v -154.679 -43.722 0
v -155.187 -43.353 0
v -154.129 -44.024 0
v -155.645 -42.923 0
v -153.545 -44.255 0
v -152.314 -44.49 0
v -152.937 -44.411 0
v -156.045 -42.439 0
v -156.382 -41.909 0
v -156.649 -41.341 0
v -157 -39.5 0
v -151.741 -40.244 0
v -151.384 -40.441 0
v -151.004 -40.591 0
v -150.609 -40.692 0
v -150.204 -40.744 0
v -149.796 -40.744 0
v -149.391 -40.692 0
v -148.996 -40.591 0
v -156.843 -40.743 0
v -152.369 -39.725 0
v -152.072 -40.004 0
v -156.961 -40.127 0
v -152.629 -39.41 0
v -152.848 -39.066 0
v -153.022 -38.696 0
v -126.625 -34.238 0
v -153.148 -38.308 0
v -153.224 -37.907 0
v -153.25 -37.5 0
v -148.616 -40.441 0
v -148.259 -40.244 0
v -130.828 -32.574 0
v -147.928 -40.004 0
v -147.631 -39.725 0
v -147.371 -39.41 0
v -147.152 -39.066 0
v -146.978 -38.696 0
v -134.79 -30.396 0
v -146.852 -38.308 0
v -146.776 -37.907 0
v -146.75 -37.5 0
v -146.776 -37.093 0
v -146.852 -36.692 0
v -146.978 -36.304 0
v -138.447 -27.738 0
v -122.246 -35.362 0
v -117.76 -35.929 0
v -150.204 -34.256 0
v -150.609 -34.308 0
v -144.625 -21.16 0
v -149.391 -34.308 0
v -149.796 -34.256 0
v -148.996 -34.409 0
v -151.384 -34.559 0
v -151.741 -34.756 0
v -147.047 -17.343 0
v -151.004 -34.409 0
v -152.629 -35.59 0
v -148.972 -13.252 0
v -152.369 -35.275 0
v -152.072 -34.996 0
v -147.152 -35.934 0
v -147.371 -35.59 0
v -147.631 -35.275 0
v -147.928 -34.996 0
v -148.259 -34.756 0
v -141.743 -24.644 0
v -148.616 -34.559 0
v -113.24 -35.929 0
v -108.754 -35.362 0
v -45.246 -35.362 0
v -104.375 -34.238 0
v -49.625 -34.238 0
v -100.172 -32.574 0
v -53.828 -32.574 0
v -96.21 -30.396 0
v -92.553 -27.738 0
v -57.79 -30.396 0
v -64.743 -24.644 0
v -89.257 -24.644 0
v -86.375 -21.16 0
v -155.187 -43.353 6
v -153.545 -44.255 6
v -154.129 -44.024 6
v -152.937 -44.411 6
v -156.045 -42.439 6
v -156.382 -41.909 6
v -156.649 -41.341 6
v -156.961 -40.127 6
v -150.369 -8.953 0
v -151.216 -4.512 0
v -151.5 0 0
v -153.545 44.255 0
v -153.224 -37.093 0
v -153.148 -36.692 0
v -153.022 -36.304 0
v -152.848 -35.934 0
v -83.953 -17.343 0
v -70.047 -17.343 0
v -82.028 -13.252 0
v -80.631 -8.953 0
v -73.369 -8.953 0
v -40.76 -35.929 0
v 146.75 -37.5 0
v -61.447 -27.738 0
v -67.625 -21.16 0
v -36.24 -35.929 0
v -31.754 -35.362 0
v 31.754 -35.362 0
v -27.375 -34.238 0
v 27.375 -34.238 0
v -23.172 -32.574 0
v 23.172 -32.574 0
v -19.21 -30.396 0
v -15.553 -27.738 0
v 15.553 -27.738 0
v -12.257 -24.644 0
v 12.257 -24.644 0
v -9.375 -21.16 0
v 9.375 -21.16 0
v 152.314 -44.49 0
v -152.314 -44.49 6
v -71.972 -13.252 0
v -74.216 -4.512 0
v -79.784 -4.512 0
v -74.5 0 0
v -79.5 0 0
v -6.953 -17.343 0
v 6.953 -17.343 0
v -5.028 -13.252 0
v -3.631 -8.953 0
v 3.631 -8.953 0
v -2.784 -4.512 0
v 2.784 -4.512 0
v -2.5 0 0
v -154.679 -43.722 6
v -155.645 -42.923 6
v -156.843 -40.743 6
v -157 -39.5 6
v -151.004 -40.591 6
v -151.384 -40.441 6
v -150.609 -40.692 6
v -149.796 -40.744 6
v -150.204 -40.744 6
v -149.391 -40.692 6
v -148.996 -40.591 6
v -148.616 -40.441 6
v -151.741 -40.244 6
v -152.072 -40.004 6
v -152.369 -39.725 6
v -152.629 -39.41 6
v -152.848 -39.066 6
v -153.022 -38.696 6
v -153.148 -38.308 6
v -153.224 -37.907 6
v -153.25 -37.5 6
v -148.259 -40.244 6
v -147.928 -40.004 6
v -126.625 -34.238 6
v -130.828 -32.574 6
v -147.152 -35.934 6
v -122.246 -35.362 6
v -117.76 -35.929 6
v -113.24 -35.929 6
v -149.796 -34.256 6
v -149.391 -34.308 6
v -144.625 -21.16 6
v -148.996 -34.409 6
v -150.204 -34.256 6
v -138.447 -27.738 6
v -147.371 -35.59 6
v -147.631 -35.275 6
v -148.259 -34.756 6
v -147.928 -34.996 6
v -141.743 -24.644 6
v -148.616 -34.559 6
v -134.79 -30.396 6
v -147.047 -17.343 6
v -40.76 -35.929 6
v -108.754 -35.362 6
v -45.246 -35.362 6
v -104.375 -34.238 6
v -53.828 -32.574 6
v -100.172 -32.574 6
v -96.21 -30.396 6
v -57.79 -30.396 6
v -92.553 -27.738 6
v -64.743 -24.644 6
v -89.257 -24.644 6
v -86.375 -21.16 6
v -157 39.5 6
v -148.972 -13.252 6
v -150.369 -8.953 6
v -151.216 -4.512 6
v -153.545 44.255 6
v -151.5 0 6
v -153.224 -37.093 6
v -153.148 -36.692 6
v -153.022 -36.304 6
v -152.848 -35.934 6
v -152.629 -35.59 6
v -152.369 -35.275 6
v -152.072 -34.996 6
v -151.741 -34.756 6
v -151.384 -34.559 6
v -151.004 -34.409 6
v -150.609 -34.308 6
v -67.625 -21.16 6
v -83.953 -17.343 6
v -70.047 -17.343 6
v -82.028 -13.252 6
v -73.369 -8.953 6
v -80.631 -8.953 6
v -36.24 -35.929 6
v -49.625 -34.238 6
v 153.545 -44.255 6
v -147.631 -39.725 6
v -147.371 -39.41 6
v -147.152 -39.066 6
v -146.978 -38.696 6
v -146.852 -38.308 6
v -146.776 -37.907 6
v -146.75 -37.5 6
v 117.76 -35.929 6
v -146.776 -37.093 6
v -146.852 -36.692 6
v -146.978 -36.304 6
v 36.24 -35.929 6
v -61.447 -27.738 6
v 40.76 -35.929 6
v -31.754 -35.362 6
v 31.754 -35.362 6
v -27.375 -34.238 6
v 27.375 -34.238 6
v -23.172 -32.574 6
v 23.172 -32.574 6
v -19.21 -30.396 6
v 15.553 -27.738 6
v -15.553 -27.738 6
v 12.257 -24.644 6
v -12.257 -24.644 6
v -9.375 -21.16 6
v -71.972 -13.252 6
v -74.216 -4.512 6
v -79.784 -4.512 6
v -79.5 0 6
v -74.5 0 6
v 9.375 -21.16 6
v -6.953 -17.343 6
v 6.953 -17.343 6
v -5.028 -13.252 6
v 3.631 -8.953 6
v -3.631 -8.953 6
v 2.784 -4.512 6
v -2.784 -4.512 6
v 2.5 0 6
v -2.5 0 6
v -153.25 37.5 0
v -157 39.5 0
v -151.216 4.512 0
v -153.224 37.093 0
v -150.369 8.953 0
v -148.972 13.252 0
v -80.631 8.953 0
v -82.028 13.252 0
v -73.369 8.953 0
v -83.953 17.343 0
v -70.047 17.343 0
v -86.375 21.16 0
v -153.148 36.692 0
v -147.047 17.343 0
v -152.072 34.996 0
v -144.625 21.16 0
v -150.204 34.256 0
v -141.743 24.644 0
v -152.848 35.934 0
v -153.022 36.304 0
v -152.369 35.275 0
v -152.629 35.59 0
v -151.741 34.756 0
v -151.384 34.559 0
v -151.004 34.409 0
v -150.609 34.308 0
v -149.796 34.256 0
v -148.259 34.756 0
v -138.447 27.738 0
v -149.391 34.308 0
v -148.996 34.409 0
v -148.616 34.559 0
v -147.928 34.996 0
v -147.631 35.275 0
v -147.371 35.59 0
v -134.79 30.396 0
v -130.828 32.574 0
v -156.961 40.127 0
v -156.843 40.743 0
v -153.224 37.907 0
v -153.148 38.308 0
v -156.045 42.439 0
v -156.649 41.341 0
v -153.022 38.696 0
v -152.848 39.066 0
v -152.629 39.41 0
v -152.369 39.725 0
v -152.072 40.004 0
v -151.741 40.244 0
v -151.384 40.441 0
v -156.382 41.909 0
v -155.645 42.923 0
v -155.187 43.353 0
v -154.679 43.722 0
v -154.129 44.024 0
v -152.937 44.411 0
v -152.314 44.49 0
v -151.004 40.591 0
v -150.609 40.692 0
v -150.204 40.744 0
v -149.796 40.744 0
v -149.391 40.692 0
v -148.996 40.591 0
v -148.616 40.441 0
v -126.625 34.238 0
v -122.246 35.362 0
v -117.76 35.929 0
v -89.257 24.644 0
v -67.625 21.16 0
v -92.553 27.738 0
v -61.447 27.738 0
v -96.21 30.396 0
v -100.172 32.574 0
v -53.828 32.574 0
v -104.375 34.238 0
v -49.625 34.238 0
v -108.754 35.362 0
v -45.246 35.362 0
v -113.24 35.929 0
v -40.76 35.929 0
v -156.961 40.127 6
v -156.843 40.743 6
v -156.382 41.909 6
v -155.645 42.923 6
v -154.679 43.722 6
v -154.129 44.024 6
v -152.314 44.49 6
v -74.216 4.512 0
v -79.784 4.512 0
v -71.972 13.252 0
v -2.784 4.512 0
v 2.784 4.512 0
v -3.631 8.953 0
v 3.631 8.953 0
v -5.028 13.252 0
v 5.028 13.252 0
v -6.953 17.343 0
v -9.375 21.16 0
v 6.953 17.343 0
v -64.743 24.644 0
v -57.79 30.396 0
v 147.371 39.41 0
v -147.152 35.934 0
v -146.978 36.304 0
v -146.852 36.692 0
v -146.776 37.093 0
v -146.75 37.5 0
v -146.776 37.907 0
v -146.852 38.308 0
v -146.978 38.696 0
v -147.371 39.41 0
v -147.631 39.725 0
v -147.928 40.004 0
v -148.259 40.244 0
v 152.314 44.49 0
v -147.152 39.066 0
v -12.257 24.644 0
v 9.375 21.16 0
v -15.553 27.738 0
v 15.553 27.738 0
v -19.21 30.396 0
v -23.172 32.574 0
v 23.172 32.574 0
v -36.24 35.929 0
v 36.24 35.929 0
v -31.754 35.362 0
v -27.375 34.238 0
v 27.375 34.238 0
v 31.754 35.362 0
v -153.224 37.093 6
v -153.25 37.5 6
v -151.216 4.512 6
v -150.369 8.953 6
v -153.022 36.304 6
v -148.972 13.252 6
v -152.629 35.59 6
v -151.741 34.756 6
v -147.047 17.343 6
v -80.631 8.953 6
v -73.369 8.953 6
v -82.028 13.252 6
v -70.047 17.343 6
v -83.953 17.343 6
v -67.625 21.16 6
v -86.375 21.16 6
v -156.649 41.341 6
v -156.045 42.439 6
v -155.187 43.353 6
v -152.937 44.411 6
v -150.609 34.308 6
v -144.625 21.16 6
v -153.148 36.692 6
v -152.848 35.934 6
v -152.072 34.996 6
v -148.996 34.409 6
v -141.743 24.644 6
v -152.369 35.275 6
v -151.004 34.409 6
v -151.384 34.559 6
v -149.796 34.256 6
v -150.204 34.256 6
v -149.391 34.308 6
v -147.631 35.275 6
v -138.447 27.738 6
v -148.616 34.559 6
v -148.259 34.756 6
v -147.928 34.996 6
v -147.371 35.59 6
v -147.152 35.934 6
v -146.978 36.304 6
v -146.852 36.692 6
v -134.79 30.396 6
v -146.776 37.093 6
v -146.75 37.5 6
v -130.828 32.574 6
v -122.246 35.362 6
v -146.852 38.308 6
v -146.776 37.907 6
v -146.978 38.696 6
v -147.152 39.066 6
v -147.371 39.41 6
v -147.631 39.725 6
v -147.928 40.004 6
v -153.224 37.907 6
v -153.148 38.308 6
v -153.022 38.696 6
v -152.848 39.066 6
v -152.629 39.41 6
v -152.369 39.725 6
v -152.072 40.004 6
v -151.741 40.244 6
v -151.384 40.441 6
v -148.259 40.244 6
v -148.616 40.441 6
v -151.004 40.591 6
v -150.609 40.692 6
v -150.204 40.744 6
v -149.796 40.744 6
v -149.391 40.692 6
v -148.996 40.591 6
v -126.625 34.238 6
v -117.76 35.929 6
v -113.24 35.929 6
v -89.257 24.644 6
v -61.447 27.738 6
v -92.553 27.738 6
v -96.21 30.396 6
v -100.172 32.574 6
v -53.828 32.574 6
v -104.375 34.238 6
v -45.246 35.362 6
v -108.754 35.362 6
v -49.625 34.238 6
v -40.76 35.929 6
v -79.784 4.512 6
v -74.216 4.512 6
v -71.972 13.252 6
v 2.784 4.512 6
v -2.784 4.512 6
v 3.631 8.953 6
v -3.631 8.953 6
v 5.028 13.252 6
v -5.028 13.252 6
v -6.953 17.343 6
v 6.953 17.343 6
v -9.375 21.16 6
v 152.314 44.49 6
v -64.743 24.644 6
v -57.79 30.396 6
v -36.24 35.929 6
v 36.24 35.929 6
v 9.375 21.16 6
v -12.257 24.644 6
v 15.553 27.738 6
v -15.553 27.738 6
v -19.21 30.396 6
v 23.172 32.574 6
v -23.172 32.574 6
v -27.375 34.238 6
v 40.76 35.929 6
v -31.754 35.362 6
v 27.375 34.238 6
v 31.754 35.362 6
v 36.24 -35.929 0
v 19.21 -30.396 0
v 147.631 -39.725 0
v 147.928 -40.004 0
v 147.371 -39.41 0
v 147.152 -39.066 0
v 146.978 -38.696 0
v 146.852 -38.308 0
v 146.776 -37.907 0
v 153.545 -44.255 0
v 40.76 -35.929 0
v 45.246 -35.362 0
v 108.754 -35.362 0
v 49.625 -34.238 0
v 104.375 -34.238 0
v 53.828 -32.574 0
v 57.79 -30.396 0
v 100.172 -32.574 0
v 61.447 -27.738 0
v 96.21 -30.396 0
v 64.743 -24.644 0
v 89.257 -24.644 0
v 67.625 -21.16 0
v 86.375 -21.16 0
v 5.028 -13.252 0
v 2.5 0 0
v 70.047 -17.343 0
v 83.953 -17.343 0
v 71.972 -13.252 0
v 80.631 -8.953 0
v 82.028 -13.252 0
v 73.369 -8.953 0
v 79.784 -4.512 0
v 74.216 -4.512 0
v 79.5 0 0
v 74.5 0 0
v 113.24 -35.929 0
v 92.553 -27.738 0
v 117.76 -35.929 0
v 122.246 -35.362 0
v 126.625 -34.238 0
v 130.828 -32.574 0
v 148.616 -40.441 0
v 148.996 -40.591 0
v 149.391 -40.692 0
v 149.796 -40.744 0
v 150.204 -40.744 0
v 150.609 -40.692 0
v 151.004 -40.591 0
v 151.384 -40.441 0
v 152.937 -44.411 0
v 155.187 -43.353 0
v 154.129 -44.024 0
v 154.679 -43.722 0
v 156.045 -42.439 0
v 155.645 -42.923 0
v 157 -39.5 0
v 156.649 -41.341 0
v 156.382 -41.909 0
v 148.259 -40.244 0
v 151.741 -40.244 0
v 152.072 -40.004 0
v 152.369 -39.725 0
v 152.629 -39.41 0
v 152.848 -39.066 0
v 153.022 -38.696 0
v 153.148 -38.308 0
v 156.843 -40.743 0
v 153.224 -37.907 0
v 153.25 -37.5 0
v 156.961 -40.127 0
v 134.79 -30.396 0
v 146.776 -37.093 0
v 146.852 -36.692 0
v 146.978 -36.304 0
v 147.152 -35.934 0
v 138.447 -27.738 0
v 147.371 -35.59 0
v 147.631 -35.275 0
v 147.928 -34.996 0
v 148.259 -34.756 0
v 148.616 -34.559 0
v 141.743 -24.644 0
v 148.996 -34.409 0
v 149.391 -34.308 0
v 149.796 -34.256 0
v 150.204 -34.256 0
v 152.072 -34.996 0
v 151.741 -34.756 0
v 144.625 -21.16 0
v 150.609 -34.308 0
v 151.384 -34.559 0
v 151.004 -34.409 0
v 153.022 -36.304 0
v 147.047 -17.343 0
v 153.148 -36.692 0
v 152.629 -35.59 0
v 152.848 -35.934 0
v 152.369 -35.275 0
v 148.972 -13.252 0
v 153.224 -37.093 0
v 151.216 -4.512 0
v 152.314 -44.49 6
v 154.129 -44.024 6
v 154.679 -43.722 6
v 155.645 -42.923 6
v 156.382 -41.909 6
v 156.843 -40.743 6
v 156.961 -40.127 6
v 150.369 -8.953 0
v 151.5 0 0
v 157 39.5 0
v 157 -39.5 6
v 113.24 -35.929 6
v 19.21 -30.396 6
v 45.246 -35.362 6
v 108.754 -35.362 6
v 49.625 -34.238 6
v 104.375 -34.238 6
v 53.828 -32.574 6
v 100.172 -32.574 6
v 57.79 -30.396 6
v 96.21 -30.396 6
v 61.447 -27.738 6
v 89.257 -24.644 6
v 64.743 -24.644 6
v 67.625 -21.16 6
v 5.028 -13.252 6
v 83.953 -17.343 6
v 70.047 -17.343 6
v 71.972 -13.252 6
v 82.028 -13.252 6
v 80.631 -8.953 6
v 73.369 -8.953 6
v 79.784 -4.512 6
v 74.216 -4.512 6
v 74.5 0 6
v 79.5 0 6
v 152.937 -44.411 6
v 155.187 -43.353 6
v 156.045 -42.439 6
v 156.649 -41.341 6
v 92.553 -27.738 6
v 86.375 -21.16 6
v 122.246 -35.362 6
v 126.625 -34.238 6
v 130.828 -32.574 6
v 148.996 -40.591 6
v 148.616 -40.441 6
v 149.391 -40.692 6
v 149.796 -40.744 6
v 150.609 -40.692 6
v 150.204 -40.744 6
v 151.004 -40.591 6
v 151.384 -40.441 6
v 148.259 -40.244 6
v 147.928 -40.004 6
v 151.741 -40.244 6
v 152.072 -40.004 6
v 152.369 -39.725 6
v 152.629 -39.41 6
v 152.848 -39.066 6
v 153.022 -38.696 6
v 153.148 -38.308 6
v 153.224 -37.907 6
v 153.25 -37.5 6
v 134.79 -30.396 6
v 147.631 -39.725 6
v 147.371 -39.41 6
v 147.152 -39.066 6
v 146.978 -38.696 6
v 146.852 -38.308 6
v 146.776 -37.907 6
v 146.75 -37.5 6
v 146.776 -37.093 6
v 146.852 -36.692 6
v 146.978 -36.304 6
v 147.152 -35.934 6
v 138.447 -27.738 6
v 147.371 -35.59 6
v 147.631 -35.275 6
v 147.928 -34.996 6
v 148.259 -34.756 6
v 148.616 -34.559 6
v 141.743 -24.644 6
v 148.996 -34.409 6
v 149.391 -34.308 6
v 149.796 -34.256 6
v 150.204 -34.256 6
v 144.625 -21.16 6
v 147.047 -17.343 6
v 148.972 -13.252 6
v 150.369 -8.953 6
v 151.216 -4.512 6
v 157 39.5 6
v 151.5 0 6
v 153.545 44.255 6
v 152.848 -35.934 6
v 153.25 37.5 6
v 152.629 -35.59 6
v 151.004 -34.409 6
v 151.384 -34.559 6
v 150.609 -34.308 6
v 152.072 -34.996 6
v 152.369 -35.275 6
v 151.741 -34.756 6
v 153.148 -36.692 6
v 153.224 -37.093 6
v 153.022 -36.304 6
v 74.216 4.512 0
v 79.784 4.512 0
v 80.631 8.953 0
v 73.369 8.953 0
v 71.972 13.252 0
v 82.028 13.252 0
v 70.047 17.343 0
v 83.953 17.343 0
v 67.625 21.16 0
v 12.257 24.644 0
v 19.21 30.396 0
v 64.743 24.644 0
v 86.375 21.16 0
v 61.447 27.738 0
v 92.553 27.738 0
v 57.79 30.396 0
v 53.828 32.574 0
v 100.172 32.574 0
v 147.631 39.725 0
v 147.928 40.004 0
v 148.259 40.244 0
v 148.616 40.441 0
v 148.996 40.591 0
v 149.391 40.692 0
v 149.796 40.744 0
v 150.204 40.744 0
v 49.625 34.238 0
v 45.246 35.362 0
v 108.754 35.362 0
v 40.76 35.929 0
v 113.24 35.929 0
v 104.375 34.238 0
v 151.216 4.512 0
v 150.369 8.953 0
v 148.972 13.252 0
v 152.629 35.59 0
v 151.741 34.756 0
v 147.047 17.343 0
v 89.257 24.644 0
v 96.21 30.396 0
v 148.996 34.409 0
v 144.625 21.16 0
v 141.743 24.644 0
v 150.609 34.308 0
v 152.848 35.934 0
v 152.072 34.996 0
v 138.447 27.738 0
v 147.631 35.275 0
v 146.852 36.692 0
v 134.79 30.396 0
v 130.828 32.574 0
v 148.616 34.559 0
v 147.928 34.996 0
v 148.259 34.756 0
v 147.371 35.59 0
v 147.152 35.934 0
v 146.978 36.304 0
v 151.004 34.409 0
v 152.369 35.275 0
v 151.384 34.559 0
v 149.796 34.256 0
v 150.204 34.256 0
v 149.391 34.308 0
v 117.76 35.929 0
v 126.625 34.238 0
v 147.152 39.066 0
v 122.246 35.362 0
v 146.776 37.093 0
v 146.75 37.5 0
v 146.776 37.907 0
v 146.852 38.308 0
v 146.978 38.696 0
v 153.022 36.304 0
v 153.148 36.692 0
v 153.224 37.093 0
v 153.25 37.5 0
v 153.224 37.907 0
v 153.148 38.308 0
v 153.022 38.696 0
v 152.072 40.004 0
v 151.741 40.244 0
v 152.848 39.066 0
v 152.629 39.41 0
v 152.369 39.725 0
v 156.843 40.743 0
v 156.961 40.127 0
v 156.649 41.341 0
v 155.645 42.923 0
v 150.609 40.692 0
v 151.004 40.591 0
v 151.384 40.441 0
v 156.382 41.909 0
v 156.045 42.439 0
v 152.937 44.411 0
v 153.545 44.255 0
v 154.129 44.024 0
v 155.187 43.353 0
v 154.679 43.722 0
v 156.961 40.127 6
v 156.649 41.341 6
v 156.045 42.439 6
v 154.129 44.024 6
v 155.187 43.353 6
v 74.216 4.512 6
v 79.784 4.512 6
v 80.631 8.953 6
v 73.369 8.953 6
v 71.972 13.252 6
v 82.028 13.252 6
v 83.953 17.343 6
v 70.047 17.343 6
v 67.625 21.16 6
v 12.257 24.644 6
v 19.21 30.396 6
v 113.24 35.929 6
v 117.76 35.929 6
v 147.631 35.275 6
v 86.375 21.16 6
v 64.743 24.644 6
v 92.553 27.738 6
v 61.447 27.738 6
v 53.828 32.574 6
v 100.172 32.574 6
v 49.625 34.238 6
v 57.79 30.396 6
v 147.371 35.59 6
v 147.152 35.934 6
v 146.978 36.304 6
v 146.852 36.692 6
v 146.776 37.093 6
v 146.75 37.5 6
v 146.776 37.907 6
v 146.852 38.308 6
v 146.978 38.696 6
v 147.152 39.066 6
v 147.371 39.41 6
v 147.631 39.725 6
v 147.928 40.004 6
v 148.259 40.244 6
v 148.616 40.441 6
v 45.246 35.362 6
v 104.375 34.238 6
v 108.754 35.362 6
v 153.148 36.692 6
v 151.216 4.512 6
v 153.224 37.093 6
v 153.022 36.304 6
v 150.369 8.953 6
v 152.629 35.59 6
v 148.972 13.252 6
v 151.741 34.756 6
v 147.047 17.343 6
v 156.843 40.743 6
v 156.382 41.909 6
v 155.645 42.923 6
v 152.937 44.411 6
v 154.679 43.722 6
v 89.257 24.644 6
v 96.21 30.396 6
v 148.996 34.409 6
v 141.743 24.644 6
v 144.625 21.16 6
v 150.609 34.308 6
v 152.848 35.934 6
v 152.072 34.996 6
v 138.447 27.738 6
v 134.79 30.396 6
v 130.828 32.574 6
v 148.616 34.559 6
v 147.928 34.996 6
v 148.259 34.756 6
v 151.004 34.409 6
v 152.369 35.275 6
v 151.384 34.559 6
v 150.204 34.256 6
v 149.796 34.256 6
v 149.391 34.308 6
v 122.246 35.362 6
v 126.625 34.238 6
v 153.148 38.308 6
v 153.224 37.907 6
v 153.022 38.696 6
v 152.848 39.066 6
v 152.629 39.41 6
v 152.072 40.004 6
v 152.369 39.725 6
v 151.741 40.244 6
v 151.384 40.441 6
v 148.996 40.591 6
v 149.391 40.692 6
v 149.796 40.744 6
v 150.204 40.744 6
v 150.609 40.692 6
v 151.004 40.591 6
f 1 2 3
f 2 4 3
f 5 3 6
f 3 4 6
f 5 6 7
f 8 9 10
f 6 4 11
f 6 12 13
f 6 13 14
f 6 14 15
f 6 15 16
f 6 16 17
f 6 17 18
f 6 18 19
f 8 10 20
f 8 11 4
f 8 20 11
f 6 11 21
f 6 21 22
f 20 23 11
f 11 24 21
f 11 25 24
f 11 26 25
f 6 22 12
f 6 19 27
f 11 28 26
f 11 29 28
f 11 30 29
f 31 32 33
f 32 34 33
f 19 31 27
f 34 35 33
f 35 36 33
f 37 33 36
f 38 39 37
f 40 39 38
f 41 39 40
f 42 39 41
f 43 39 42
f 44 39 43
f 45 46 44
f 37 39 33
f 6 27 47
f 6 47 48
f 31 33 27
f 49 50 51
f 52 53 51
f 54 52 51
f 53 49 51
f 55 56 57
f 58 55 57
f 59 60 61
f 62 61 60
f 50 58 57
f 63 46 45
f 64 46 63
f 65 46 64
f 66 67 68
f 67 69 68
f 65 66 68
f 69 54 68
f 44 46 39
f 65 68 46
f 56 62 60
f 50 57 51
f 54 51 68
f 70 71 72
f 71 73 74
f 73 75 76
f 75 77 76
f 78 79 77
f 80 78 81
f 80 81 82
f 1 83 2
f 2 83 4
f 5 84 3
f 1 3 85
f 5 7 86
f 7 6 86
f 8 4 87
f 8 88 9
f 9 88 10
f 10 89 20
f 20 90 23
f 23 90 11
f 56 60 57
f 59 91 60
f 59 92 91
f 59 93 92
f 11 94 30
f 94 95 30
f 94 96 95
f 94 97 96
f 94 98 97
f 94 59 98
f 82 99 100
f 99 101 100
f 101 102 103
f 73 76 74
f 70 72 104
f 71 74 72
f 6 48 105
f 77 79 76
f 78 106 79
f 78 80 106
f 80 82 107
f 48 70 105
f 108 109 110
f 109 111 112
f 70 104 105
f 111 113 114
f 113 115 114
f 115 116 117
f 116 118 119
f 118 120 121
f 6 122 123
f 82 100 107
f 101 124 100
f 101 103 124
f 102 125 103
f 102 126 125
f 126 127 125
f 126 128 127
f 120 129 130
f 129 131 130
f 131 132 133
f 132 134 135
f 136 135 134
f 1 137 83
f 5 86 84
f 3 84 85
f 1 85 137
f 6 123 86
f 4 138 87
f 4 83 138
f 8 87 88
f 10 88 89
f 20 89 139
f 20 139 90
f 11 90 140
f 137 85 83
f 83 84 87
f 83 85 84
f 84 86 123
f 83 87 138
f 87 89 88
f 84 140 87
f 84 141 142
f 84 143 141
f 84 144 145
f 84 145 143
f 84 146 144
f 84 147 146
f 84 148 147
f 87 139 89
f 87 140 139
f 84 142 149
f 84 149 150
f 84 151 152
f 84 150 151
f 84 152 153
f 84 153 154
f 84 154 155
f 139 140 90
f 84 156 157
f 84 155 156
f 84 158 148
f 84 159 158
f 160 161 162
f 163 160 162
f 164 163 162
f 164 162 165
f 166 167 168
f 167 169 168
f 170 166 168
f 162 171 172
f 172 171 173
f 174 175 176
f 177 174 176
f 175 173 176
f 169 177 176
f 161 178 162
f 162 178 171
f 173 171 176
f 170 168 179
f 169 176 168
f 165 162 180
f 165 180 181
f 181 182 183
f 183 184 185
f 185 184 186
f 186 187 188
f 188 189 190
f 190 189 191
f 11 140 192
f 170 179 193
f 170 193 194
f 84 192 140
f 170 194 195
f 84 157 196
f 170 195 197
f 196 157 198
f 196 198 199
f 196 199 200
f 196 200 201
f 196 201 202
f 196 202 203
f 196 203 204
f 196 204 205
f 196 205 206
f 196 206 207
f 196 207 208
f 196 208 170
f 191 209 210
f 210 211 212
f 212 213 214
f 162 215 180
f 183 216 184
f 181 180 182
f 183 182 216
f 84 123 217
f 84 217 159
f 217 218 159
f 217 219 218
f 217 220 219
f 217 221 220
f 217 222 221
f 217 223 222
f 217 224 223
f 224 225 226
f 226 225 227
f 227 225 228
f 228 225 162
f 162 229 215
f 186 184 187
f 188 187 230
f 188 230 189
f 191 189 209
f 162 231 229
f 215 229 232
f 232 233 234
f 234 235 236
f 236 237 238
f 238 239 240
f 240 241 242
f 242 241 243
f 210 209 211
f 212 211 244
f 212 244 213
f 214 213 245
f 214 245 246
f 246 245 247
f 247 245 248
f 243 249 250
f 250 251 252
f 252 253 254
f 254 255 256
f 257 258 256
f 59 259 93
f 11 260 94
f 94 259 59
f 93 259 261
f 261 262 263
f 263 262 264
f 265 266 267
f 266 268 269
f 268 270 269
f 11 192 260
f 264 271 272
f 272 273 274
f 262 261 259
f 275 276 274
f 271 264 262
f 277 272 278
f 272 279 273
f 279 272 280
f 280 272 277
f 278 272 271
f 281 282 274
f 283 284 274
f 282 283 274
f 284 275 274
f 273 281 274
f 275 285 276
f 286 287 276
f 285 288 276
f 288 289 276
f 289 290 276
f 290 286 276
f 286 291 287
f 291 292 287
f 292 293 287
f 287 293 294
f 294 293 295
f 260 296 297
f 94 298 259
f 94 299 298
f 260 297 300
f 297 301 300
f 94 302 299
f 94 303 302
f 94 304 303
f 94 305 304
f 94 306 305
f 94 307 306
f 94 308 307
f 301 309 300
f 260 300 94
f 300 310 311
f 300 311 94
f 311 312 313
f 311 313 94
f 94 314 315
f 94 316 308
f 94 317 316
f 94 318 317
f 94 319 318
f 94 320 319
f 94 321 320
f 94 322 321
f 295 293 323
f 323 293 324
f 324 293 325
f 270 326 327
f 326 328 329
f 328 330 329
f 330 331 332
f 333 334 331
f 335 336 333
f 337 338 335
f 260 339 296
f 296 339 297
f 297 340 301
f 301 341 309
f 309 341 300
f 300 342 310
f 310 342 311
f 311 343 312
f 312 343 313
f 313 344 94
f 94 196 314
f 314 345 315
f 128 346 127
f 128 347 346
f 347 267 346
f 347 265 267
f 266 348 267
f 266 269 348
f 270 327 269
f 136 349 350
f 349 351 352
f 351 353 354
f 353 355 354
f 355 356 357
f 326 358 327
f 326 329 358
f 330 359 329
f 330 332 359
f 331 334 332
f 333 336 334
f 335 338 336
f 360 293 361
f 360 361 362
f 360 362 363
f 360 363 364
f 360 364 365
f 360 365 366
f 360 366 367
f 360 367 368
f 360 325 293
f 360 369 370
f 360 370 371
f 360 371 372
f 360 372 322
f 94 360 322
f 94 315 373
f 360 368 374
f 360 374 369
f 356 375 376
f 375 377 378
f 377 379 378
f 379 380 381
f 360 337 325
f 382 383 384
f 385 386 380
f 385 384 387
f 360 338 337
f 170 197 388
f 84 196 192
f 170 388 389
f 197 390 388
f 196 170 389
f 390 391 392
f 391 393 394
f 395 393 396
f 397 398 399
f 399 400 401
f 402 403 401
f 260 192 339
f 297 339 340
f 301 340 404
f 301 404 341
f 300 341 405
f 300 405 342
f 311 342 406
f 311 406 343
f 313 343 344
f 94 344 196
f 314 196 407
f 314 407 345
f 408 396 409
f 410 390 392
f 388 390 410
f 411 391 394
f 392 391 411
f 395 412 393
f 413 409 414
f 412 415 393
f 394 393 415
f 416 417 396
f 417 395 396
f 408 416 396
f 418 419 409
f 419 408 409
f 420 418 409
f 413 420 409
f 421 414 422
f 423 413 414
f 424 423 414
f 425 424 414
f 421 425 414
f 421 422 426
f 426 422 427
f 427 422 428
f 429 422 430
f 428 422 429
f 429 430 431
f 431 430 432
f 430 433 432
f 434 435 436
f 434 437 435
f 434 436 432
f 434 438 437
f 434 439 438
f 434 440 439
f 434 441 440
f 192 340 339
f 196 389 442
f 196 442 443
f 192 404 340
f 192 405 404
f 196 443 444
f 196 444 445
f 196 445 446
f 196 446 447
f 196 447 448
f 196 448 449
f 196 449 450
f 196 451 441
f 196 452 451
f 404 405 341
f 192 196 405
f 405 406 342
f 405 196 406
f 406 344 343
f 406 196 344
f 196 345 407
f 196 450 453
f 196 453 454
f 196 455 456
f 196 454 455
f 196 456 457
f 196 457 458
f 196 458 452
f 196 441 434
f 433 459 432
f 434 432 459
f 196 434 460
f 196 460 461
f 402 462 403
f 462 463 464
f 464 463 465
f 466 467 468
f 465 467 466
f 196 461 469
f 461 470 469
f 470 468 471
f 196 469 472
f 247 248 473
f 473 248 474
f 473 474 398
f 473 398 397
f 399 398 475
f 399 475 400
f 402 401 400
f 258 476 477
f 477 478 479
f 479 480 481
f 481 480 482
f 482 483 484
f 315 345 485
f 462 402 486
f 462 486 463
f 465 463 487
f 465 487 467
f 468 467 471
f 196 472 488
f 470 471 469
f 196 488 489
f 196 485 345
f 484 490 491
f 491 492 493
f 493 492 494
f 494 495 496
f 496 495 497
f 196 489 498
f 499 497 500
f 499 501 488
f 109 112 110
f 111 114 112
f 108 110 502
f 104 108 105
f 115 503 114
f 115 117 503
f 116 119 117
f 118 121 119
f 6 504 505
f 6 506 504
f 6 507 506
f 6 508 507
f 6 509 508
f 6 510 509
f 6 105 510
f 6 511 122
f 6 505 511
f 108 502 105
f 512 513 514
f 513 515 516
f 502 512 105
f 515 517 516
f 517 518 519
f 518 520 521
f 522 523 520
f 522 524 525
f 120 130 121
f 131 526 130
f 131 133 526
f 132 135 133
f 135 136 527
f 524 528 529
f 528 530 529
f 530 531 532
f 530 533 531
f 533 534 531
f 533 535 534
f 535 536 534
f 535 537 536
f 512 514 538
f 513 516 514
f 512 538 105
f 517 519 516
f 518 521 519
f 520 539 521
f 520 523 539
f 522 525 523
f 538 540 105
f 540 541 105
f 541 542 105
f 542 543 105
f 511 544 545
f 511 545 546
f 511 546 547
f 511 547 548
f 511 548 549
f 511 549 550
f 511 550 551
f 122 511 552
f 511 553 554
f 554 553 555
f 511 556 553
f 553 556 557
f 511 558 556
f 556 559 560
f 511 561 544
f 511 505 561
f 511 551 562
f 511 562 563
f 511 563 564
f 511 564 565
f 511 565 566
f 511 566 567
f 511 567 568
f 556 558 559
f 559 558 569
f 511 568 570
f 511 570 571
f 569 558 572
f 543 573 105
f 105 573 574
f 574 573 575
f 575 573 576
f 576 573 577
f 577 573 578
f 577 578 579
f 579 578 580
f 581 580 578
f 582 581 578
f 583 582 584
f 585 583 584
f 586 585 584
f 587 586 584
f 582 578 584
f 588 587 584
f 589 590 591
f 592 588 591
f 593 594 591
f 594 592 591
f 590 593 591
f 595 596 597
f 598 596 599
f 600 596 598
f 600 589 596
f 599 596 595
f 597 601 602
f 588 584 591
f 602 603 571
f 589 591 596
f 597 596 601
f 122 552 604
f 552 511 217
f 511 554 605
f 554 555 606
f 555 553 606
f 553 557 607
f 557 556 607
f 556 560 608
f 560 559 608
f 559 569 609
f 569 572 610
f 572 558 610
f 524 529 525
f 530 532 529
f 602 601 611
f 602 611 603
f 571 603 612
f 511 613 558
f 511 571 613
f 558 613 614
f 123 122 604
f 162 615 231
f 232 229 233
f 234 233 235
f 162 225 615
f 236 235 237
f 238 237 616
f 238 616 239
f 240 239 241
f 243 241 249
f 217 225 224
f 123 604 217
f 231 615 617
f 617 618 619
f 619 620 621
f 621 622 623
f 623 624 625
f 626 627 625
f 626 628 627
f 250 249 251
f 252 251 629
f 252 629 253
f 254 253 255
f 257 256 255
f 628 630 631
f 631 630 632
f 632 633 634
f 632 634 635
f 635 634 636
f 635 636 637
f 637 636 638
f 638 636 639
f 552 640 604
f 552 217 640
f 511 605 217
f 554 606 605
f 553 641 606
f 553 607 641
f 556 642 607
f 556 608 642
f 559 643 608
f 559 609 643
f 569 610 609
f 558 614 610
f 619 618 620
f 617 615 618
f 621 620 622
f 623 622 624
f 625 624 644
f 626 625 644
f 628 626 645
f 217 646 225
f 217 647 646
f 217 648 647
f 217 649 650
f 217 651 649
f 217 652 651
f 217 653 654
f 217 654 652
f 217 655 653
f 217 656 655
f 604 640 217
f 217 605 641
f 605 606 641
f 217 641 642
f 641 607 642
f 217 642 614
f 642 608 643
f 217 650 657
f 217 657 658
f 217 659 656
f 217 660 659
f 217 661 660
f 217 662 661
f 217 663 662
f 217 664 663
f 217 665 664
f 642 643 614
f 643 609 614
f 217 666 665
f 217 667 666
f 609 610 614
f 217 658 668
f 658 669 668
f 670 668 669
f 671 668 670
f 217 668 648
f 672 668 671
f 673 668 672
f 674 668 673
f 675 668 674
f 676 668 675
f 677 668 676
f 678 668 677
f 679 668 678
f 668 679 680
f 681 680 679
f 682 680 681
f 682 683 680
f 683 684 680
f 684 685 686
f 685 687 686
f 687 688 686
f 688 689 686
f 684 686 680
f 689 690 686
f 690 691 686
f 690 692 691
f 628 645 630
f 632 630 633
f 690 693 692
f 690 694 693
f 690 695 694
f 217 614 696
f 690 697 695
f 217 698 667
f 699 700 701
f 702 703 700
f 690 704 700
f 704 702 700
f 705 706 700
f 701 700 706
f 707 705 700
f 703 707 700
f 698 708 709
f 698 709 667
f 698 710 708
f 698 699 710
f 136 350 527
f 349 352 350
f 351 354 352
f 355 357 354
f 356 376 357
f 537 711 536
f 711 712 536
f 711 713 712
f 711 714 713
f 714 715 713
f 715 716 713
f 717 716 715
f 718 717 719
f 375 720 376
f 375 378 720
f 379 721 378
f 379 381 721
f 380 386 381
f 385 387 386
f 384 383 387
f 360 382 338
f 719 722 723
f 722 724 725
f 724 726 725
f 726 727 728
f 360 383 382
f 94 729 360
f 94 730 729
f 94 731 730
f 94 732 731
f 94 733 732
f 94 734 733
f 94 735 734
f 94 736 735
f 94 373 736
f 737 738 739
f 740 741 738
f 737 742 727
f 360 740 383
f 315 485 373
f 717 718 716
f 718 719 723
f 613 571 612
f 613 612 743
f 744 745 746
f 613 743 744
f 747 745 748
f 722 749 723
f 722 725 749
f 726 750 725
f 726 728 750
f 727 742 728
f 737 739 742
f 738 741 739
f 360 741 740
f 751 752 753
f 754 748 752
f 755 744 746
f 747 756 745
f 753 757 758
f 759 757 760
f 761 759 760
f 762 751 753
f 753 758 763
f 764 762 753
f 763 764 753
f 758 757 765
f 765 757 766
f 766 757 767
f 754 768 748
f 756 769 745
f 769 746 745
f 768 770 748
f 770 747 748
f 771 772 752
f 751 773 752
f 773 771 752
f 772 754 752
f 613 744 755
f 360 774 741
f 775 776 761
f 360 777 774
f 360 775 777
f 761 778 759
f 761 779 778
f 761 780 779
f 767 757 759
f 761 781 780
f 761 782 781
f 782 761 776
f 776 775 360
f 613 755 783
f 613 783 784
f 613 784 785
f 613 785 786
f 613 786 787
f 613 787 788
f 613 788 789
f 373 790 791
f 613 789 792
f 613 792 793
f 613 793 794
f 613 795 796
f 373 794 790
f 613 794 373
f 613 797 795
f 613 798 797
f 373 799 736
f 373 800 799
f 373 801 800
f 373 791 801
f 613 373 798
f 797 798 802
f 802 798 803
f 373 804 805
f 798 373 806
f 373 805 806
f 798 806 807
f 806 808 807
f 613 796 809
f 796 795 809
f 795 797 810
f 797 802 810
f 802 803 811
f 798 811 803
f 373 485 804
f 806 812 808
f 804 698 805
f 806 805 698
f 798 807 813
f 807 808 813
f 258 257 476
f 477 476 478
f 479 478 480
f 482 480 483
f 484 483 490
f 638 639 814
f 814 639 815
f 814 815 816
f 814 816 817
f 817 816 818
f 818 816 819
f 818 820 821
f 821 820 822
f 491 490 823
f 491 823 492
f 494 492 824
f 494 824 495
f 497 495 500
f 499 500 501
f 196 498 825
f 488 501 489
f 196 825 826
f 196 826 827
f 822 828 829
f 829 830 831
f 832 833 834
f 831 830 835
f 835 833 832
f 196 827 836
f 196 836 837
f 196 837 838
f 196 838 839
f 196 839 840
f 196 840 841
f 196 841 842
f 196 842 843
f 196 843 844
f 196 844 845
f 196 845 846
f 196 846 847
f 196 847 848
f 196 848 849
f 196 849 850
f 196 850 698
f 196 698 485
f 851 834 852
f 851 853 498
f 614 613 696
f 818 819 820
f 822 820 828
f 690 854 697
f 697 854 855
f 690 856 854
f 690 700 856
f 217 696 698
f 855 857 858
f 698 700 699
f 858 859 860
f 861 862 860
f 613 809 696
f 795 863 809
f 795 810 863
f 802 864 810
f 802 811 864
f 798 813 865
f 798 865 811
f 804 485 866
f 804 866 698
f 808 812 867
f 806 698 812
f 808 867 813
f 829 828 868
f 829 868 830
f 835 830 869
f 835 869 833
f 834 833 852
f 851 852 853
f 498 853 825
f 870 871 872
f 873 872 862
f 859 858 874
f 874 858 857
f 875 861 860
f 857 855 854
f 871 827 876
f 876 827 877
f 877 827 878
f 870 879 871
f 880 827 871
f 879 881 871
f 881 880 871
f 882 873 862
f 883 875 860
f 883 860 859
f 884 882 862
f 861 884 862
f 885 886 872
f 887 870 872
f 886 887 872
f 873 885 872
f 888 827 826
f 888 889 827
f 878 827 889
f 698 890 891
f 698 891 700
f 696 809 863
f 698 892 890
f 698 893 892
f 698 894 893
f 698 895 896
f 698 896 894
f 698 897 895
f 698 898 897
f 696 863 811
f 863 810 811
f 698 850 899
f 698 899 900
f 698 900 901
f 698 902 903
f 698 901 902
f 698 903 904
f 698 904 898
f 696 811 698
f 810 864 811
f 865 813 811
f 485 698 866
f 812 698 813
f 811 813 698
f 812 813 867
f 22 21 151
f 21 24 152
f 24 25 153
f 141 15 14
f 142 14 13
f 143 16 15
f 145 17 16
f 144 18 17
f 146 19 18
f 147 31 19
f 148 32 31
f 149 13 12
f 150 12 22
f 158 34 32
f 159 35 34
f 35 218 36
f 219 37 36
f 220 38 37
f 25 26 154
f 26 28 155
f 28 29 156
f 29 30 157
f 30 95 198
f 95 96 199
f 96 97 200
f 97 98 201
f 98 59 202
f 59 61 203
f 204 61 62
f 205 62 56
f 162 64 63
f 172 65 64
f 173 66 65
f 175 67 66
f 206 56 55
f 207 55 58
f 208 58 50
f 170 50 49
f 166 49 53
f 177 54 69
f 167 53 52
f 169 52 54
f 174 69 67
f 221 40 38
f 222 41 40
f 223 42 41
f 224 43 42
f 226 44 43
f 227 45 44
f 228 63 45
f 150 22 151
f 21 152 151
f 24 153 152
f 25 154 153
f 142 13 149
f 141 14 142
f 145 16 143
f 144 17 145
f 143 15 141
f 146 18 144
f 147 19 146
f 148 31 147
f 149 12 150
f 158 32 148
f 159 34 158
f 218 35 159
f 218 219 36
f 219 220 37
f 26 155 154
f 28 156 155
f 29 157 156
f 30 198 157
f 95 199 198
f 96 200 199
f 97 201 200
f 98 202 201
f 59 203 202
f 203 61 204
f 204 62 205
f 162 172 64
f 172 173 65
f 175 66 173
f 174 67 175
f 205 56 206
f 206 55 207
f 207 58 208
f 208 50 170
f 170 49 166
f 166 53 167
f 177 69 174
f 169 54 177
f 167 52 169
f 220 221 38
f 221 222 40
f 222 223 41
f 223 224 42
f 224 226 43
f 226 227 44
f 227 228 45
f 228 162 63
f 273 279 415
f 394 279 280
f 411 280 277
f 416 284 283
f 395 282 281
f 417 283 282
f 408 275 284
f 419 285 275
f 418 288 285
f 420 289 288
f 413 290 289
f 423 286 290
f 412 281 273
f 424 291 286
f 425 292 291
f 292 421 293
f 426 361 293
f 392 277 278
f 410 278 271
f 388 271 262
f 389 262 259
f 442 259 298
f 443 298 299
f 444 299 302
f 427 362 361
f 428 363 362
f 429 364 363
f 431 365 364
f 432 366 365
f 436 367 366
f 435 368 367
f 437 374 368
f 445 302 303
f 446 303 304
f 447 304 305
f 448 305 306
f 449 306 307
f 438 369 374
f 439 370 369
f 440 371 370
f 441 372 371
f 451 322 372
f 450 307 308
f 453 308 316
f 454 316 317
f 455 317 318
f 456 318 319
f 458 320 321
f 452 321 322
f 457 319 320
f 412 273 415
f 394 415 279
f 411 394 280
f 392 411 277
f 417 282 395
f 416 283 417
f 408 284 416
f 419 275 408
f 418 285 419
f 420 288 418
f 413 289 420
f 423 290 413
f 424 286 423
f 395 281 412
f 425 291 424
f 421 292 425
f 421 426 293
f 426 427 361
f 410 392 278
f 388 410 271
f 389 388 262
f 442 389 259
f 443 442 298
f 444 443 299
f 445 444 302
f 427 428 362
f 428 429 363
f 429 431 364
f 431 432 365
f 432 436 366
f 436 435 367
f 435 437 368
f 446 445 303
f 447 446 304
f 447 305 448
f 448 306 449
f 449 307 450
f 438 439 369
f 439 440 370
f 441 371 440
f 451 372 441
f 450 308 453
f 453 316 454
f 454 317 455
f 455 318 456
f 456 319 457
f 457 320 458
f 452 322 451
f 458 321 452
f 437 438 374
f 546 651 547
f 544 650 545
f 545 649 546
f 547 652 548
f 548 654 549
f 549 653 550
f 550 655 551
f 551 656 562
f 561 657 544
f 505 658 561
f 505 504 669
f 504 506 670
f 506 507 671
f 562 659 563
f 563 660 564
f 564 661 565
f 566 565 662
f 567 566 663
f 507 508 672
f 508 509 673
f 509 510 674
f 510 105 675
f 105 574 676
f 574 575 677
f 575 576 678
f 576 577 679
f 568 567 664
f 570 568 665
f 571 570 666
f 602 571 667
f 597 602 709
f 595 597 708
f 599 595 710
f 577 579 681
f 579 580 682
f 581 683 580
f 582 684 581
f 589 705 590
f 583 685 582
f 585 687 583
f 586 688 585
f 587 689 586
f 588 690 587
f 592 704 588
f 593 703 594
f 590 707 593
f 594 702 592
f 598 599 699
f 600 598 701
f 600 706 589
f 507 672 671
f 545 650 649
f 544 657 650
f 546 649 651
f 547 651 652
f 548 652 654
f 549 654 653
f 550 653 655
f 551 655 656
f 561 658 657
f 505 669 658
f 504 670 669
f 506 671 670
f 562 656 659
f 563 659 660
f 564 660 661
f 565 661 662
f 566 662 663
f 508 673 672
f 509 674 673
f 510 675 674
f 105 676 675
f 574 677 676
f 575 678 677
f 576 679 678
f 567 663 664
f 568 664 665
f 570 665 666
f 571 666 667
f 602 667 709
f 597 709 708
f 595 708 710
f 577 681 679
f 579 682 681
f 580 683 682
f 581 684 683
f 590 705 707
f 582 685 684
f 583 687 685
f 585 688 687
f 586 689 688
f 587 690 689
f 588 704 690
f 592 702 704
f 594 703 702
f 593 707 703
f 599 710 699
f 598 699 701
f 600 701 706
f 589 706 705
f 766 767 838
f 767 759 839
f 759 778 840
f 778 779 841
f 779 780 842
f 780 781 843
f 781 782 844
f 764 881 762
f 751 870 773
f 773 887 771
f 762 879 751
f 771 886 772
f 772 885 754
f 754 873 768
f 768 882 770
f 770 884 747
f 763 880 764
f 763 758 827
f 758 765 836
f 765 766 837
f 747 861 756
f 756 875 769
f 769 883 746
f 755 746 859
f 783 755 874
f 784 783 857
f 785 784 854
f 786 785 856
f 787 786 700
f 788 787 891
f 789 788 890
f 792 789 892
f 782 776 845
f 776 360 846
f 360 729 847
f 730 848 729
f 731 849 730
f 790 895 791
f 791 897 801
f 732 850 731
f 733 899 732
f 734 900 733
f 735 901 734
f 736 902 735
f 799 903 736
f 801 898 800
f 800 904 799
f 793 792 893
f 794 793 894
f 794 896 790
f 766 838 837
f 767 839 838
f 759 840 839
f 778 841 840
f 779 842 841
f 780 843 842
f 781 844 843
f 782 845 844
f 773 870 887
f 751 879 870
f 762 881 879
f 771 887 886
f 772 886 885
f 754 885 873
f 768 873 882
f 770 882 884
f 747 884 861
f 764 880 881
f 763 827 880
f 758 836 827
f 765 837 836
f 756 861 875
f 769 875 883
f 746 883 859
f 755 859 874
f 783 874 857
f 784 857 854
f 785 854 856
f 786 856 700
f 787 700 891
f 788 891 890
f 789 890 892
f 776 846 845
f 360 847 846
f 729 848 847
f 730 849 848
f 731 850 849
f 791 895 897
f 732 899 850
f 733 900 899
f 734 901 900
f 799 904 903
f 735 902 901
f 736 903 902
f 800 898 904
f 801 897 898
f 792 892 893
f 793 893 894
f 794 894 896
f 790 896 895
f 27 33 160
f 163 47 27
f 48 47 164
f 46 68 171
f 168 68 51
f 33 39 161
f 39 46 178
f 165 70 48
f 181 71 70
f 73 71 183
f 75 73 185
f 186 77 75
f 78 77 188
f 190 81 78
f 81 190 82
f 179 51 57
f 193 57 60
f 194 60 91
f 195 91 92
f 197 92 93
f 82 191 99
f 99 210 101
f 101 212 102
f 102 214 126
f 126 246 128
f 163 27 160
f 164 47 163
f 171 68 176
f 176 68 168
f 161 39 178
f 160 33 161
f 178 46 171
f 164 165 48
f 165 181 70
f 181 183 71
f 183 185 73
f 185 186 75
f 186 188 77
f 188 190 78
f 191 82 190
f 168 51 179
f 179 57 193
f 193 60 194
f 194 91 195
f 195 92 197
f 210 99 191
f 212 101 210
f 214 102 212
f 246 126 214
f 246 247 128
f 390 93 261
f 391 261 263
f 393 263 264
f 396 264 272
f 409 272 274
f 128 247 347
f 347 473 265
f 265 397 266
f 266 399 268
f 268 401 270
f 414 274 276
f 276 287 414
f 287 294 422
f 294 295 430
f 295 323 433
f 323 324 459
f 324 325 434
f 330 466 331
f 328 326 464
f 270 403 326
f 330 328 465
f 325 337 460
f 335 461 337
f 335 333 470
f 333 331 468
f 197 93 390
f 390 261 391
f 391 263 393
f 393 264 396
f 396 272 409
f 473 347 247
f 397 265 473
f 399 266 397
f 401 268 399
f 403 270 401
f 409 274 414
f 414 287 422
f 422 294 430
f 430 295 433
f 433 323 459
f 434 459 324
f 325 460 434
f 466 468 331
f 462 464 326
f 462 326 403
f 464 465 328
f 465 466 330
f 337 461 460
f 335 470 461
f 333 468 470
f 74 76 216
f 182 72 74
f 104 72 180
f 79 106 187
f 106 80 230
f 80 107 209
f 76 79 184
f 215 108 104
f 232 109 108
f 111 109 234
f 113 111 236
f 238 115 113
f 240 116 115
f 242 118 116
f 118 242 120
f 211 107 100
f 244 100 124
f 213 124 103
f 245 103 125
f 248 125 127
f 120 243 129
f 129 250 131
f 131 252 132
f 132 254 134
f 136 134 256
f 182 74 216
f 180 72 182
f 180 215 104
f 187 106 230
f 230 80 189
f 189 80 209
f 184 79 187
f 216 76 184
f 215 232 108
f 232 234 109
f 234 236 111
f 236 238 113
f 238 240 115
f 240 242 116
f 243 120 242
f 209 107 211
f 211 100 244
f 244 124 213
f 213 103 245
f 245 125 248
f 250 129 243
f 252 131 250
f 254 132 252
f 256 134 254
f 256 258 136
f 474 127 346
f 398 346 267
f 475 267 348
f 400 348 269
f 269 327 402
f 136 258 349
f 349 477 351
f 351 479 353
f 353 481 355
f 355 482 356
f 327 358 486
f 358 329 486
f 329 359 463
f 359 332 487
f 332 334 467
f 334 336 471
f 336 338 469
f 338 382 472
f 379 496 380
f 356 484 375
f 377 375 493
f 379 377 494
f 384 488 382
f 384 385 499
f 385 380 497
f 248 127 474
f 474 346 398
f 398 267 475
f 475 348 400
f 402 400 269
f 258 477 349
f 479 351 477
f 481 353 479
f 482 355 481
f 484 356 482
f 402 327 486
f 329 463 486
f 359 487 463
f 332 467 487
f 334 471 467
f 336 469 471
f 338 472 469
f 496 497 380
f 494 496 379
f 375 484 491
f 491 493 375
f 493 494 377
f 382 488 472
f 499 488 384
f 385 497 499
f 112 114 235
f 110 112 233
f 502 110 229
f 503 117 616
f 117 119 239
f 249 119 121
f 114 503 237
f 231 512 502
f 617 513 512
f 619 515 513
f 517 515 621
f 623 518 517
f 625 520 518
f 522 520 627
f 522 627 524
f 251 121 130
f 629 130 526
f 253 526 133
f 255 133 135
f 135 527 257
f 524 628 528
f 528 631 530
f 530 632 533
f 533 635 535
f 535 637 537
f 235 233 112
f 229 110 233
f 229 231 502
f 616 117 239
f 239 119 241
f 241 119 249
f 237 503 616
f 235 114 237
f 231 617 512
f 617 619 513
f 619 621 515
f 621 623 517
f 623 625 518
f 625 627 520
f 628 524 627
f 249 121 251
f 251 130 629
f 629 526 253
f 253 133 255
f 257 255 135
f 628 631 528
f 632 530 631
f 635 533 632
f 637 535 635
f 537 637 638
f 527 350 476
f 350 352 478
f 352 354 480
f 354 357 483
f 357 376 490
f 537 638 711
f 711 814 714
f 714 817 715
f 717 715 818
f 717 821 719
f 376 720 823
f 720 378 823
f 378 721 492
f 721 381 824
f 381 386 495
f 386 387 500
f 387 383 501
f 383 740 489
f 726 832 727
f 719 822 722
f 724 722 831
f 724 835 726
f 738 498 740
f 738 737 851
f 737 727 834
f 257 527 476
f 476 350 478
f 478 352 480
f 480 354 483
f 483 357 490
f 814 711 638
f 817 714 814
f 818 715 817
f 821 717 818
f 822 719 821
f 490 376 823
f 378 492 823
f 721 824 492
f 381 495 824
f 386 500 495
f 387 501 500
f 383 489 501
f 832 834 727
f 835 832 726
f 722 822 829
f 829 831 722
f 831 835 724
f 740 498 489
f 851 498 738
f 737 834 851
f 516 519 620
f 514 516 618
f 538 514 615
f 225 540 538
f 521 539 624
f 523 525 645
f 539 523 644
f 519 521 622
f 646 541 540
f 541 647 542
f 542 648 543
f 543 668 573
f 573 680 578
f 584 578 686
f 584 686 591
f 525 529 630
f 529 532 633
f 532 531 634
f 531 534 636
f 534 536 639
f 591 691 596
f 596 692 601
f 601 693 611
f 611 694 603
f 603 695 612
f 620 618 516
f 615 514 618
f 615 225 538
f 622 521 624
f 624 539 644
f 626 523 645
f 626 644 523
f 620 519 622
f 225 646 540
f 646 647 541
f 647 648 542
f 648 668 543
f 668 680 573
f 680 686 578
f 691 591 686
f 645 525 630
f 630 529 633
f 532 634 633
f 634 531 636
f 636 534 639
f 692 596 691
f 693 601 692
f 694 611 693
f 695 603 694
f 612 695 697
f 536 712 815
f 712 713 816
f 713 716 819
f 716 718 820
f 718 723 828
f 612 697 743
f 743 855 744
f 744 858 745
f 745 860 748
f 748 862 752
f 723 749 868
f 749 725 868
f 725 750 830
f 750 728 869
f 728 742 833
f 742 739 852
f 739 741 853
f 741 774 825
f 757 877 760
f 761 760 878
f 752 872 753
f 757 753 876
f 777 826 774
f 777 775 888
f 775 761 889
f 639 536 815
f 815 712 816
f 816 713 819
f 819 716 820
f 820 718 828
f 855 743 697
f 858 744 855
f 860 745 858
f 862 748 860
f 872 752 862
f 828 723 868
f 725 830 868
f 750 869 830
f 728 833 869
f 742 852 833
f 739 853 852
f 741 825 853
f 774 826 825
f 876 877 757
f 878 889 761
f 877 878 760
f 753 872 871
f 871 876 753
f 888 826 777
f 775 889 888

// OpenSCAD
$fn = 50;

difference() {
	union() {
		hull() {
			translate(v = [-152.0, 39.5, 0]) {
				cylinder(h = 6, r = 5);
			}
			translate(v = [152.0, 39.5, 0]) {
				cylinder(h = 6, r = 5);
			}
			translate(v = [-152.0, -39.5, 0]) {
				cylinder(h = 6, r = 5);
			}
			translate(v = [152.0, -39.5, 0]) {
				cylinder(h = 6, r = 5);
			}
		}
	}
	union() {
		translate(v = [-150.0, -37.5, -100.0]) {
			cylinder(h = 200, r = 3.25);
		}
		translate(v = [-150.0, 37.5, -100.0]) {
			cylinder(h = 200, r = 3.25);
		}
		translate(v = [150.0, -37.5, -100.0]) {
			cylinder(h = 200, r = 3.25);
		}
		translate(v = [150.0, 37.5, -100.0]) {
			cylinder(h = 200, r = 3.25);
		}
		translate(v = [-150.0, -37.5, -100.0]) {
			cylinder(h = 200, r = 1.8);
		}
		translate(v = [-150.0, 37.5, -100.0]) {
			cylinder(h = 200, r = 1.8);
		}
		translate(v = [150.0, -37.5, -100.0]) {
			cylinder(h = 200, r = 1.8);
		}
		translate(v = [150.0, 37.5, -100.0]) {
			cylinder(h = 200, r = 1.8);
		}
		translate(v = [-115.5, 0, 0.0]) {
			cylinder(h = 6, r = 36.0);
		}
		translate(v = [-38.5, 0, 0.0]) {
			cylinder(h = 6, r = 36.0);
		}
		translate(v = [38.5, 0, 0.0]) {
			cylinder(h = 6, r = 36.0);
		}
		translate(v = [115.5, 0, 0.0]) {
			cylinder(h = 6, r = 36.0);
		}
	}
}
